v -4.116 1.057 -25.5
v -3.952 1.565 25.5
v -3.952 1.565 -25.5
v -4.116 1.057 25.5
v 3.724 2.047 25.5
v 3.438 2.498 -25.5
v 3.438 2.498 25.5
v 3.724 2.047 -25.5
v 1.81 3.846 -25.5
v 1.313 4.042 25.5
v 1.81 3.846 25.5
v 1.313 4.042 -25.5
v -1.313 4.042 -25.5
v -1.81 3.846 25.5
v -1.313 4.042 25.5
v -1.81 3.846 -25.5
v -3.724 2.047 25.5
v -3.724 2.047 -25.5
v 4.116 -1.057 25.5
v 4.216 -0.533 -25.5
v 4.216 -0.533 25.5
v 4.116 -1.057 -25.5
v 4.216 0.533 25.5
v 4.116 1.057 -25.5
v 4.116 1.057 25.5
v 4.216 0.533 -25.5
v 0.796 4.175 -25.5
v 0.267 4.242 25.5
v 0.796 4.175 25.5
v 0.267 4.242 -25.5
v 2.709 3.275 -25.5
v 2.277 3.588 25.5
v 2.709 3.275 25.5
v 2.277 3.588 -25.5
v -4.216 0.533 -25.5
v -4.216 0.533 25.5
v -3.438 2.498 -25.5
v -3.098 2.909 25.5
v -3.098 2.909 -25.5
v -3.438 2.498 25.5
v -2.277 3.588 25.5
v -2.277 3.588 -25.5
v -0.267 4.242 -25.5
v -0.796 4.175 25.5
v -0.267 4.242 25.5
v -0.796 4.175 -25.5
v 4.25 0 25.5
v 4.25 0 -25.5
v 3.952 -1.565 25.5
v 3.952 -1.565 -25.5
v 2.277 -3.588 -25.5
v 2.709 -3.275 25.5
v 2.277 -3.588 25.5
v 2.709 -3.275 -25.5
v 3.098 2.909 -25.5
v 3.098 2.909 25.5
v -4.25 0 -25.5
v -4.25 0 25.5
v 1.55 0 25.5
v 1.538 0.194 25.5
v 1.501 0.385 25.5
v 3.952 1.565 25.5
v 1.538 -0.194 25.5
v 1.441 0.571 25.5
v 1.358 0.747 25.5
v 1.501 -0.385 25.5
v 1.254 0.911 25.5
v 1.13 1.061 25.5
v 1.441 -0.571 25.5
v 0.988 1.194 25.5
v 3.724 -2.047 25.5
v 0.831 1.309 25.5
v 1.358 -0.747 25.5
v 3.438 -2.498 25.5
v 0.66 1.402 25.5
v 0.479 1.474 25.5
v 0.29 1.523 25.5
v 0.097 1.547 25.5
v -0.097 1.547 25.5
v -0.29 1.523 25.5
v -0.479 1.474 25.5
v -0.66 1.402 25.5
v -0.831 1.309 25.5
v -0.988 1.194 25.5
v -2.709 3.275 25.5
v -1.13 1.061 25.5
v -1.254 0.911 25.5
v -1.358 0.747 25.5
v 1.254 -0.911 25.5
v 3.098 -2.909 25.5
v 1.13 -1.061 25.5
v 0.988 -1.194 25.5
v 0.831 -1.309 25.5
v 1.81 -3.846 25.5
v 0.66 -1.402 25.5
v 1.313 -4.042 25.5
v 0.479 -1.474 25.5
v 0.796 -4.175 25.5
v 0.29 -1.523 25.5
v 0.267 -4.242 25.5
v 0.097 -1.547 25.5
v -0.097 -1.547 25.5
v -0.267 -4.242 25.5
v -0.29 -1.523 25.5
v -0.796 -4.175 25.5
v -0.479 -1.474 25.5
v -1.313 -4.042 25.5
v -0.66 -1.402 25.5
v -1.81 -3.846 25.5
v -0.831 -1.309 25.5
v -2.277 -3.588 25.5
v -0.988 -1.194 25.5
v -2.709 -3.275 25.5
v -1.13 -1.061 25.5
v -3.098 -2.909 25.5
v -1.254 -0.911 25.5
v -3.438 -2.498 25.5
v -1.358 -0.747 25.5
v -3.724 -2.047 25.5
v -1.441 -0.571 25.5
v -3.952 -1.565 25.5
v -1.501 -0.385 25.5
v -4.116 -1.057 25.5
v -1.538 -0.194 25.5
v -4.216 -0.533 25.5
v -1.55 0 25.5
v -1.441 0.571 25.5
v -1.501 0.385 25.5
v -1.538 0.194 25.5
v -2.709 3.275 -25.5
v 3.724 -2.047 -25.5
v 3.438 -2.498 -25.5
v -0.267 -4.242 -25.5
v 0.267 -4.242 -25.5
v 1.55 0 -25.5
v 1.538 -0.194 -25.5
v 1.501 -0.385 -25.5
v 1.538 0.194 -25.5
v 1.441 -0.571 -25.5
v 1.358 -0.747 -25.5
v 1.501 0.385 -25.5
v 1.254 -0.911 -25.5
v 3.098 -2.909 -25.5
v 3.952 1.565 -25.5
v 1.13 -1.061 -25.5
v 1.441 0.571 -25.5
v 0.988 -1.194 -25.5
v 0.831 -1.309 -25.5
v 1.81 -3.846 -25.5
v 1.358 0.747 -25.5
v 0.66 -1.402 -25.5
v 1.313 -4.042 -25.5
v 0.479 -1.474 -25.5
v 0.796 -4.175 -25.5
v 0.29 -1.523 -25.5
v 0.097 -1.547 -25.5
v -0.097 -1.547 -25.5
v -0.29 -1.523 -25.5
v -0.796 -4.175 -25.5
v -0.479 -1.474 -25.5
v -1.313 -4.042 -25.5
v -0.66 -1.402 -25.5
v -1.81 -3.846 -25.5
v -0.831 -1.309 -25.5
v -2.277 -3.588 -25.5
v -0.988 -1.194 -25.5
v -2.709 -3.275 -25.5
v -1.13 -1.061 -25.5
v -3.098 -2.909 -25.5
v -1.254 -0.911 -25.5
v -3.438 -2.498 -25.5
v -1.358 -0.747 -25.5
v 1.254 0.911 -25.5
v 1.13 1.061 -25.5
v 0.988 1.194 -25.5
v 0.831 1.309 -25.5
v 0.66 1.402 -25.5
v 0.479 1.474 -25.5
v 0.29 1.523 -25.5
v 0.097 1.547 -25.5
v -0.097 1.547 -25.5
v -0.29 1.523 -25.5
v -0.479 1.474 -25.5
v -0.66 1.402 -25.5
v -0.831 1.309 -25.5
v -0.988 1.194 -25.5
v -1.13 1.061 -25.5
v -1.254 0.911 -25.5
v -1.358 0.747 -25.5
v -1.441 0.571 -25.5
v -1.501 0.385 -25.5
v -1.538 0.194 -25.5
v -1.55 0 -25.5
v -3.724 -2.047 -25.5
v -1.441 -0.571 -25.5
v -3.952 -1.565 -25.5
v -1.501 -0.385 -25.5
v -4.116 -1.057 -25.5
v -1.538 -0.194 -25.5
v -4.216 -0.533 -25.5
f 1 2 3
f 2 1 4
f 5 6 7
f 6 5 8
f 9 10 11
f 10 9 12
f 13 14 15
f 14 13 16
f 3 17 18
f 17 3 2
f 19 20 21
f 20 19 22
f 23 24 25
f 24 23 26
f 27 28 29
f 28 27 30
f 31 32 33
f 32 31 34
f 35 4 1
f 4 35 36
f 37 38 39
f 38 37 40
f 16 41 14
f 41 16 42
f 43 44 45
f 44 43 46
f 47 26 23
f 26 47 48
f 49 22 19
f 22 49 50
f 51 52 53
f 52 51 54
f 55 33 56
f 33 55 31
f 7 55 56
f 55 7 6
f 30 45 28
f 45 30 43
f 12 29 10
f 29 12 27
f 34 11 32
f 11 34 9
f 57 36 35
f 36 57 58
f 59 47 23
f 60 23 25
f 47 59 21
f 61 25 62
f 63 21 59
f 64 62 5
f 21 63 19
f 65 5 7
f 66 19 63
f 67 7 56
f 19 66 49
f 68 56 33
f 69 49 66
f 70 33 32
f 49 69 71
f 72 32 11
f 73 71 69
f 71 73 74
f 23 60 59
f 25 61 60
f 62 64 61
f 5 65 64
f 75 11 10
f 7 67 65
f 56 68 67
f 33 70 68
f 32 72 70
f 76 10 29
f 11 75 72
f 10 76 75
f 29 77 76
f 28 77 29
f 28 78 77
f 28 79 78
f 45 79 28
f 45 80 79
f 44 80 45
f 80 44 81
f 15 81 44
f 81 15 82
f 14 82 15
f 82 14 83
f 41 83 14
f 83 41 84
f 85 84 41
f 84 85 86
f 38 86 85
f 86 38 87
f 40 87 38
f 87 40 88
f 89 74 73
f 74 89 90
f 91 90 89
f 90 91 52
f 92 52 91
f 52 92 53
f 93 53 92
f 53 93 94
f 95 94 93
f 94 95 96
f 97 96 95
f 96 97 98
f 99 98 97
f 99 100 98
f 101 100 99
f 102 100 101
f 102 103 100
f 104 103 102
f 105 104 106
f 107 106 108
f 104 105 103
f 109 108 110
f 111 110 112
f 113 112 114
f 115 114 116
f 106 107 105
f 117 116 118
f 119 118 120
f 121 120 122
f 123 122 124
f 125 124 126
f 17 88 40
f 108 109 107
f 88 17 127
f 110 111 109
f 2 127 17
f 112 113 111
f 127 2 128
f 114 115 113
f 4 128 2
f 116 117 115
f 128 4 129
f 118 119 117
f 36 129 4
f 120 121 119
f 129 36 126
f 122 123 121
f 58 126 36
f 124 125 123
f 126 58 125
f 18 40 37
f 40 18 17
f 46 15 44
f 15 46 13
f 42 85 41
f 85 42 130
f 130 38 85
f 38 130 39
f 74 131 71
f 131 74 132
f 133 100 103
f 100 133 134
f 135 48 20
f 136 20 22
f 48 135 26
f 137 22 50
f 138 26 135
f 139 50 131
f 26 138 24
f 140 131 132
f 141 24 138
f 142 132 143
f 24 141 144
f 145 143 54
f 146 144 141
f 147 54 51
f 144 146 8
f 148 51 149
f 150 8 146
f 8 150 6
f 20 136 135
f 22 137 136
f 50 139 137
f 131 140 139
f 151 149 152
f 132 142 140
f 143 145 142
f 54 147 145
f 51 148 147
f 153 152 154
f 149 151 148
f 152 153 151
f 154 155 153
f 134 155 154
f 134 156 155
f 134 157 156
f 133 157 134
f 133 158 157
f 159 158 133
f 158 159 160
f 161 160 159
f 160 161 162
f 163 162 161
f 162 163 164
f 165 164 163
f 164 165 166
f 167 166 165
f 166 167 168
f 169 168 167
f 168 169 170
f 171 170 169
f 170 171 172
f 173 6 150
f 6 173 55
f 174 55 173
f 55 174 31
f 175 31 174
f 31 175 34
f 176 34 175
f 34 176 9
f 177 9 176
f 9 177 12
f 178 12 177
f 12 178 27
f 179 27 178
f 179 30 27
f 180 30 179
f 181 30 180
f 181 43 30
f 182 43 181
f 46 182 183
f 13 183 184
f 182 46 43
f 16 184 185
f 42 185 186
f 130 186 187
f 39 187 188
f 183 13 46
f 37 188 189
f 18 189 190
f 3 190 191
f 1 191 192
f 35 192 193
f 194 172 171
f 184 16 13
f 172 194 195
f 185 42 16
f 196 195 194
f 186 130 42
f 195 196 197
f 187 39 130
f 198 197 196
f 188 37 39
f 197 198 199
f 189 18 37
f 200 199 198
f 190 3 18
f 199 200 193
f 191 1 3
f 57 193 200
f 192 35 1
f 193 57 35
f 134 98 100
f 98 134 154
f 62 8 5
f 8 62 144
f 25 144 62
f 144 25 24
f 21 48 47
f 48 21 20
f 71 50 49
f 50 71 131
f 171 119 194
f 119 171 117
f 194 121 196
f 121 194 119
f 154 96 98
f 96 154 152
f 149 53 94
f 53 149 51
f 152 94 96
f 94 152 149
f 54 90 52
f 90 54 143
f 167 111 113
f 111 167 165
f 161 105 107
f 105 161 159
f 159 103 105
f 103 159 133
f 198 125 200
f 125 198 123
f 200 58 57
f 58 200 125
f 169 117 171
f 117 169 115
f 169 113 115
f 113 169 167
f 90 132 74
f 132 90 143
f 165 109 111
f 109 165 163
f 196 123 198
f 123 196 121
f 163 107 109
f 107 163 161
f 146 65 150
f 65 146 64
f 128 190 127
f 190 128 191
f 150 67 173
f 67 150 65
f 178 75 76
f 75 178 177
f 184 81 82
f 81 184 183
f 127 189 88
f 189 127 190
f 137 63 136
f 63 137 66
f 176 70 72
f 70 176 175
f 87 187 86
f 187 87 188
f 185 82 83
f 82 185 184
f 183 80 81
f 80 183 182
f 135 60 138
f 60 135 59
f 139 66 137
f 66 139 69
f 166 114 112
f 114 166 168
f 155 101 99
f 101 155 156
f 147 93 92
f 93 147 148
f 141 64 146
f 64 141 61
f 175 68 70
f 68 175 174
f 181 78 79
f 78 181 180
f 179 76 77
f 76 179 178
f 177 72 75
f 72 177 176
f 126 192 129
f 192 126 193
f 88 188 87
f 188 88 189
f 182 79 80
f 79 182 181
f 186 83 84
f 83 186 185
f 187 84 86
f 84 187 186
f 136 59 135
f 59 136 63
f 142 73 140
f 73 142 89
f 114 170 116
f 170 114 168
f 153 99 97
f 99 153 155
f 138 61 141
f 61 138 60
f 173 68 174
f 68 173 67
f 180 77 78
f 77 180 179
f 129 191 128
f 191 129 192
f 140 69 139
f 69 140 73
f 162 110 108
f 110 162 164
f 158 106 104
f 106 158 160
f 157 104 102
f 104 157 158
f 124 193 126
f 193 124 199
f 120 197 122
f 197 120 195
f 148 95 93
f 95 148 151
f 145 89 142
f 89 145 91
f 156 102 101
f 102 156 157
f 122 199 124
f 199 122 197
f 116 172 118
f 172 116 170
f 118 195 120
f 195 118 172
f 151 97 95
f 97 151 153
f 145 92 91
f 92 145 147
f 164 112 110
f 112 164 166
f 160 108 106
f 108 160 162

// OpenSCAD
$fn = 50;


difference() {
	union() {
		translate(v = [0, 0, -25.5000000000]) {
			cylinder(h = 51, r = 4.2500000000);
		}
	}
	union() {
		translate(v = [0, 0, -100.0000000000]) {
			cylinder(h = 200, r = 1.5500000000);
		}
	}
}
